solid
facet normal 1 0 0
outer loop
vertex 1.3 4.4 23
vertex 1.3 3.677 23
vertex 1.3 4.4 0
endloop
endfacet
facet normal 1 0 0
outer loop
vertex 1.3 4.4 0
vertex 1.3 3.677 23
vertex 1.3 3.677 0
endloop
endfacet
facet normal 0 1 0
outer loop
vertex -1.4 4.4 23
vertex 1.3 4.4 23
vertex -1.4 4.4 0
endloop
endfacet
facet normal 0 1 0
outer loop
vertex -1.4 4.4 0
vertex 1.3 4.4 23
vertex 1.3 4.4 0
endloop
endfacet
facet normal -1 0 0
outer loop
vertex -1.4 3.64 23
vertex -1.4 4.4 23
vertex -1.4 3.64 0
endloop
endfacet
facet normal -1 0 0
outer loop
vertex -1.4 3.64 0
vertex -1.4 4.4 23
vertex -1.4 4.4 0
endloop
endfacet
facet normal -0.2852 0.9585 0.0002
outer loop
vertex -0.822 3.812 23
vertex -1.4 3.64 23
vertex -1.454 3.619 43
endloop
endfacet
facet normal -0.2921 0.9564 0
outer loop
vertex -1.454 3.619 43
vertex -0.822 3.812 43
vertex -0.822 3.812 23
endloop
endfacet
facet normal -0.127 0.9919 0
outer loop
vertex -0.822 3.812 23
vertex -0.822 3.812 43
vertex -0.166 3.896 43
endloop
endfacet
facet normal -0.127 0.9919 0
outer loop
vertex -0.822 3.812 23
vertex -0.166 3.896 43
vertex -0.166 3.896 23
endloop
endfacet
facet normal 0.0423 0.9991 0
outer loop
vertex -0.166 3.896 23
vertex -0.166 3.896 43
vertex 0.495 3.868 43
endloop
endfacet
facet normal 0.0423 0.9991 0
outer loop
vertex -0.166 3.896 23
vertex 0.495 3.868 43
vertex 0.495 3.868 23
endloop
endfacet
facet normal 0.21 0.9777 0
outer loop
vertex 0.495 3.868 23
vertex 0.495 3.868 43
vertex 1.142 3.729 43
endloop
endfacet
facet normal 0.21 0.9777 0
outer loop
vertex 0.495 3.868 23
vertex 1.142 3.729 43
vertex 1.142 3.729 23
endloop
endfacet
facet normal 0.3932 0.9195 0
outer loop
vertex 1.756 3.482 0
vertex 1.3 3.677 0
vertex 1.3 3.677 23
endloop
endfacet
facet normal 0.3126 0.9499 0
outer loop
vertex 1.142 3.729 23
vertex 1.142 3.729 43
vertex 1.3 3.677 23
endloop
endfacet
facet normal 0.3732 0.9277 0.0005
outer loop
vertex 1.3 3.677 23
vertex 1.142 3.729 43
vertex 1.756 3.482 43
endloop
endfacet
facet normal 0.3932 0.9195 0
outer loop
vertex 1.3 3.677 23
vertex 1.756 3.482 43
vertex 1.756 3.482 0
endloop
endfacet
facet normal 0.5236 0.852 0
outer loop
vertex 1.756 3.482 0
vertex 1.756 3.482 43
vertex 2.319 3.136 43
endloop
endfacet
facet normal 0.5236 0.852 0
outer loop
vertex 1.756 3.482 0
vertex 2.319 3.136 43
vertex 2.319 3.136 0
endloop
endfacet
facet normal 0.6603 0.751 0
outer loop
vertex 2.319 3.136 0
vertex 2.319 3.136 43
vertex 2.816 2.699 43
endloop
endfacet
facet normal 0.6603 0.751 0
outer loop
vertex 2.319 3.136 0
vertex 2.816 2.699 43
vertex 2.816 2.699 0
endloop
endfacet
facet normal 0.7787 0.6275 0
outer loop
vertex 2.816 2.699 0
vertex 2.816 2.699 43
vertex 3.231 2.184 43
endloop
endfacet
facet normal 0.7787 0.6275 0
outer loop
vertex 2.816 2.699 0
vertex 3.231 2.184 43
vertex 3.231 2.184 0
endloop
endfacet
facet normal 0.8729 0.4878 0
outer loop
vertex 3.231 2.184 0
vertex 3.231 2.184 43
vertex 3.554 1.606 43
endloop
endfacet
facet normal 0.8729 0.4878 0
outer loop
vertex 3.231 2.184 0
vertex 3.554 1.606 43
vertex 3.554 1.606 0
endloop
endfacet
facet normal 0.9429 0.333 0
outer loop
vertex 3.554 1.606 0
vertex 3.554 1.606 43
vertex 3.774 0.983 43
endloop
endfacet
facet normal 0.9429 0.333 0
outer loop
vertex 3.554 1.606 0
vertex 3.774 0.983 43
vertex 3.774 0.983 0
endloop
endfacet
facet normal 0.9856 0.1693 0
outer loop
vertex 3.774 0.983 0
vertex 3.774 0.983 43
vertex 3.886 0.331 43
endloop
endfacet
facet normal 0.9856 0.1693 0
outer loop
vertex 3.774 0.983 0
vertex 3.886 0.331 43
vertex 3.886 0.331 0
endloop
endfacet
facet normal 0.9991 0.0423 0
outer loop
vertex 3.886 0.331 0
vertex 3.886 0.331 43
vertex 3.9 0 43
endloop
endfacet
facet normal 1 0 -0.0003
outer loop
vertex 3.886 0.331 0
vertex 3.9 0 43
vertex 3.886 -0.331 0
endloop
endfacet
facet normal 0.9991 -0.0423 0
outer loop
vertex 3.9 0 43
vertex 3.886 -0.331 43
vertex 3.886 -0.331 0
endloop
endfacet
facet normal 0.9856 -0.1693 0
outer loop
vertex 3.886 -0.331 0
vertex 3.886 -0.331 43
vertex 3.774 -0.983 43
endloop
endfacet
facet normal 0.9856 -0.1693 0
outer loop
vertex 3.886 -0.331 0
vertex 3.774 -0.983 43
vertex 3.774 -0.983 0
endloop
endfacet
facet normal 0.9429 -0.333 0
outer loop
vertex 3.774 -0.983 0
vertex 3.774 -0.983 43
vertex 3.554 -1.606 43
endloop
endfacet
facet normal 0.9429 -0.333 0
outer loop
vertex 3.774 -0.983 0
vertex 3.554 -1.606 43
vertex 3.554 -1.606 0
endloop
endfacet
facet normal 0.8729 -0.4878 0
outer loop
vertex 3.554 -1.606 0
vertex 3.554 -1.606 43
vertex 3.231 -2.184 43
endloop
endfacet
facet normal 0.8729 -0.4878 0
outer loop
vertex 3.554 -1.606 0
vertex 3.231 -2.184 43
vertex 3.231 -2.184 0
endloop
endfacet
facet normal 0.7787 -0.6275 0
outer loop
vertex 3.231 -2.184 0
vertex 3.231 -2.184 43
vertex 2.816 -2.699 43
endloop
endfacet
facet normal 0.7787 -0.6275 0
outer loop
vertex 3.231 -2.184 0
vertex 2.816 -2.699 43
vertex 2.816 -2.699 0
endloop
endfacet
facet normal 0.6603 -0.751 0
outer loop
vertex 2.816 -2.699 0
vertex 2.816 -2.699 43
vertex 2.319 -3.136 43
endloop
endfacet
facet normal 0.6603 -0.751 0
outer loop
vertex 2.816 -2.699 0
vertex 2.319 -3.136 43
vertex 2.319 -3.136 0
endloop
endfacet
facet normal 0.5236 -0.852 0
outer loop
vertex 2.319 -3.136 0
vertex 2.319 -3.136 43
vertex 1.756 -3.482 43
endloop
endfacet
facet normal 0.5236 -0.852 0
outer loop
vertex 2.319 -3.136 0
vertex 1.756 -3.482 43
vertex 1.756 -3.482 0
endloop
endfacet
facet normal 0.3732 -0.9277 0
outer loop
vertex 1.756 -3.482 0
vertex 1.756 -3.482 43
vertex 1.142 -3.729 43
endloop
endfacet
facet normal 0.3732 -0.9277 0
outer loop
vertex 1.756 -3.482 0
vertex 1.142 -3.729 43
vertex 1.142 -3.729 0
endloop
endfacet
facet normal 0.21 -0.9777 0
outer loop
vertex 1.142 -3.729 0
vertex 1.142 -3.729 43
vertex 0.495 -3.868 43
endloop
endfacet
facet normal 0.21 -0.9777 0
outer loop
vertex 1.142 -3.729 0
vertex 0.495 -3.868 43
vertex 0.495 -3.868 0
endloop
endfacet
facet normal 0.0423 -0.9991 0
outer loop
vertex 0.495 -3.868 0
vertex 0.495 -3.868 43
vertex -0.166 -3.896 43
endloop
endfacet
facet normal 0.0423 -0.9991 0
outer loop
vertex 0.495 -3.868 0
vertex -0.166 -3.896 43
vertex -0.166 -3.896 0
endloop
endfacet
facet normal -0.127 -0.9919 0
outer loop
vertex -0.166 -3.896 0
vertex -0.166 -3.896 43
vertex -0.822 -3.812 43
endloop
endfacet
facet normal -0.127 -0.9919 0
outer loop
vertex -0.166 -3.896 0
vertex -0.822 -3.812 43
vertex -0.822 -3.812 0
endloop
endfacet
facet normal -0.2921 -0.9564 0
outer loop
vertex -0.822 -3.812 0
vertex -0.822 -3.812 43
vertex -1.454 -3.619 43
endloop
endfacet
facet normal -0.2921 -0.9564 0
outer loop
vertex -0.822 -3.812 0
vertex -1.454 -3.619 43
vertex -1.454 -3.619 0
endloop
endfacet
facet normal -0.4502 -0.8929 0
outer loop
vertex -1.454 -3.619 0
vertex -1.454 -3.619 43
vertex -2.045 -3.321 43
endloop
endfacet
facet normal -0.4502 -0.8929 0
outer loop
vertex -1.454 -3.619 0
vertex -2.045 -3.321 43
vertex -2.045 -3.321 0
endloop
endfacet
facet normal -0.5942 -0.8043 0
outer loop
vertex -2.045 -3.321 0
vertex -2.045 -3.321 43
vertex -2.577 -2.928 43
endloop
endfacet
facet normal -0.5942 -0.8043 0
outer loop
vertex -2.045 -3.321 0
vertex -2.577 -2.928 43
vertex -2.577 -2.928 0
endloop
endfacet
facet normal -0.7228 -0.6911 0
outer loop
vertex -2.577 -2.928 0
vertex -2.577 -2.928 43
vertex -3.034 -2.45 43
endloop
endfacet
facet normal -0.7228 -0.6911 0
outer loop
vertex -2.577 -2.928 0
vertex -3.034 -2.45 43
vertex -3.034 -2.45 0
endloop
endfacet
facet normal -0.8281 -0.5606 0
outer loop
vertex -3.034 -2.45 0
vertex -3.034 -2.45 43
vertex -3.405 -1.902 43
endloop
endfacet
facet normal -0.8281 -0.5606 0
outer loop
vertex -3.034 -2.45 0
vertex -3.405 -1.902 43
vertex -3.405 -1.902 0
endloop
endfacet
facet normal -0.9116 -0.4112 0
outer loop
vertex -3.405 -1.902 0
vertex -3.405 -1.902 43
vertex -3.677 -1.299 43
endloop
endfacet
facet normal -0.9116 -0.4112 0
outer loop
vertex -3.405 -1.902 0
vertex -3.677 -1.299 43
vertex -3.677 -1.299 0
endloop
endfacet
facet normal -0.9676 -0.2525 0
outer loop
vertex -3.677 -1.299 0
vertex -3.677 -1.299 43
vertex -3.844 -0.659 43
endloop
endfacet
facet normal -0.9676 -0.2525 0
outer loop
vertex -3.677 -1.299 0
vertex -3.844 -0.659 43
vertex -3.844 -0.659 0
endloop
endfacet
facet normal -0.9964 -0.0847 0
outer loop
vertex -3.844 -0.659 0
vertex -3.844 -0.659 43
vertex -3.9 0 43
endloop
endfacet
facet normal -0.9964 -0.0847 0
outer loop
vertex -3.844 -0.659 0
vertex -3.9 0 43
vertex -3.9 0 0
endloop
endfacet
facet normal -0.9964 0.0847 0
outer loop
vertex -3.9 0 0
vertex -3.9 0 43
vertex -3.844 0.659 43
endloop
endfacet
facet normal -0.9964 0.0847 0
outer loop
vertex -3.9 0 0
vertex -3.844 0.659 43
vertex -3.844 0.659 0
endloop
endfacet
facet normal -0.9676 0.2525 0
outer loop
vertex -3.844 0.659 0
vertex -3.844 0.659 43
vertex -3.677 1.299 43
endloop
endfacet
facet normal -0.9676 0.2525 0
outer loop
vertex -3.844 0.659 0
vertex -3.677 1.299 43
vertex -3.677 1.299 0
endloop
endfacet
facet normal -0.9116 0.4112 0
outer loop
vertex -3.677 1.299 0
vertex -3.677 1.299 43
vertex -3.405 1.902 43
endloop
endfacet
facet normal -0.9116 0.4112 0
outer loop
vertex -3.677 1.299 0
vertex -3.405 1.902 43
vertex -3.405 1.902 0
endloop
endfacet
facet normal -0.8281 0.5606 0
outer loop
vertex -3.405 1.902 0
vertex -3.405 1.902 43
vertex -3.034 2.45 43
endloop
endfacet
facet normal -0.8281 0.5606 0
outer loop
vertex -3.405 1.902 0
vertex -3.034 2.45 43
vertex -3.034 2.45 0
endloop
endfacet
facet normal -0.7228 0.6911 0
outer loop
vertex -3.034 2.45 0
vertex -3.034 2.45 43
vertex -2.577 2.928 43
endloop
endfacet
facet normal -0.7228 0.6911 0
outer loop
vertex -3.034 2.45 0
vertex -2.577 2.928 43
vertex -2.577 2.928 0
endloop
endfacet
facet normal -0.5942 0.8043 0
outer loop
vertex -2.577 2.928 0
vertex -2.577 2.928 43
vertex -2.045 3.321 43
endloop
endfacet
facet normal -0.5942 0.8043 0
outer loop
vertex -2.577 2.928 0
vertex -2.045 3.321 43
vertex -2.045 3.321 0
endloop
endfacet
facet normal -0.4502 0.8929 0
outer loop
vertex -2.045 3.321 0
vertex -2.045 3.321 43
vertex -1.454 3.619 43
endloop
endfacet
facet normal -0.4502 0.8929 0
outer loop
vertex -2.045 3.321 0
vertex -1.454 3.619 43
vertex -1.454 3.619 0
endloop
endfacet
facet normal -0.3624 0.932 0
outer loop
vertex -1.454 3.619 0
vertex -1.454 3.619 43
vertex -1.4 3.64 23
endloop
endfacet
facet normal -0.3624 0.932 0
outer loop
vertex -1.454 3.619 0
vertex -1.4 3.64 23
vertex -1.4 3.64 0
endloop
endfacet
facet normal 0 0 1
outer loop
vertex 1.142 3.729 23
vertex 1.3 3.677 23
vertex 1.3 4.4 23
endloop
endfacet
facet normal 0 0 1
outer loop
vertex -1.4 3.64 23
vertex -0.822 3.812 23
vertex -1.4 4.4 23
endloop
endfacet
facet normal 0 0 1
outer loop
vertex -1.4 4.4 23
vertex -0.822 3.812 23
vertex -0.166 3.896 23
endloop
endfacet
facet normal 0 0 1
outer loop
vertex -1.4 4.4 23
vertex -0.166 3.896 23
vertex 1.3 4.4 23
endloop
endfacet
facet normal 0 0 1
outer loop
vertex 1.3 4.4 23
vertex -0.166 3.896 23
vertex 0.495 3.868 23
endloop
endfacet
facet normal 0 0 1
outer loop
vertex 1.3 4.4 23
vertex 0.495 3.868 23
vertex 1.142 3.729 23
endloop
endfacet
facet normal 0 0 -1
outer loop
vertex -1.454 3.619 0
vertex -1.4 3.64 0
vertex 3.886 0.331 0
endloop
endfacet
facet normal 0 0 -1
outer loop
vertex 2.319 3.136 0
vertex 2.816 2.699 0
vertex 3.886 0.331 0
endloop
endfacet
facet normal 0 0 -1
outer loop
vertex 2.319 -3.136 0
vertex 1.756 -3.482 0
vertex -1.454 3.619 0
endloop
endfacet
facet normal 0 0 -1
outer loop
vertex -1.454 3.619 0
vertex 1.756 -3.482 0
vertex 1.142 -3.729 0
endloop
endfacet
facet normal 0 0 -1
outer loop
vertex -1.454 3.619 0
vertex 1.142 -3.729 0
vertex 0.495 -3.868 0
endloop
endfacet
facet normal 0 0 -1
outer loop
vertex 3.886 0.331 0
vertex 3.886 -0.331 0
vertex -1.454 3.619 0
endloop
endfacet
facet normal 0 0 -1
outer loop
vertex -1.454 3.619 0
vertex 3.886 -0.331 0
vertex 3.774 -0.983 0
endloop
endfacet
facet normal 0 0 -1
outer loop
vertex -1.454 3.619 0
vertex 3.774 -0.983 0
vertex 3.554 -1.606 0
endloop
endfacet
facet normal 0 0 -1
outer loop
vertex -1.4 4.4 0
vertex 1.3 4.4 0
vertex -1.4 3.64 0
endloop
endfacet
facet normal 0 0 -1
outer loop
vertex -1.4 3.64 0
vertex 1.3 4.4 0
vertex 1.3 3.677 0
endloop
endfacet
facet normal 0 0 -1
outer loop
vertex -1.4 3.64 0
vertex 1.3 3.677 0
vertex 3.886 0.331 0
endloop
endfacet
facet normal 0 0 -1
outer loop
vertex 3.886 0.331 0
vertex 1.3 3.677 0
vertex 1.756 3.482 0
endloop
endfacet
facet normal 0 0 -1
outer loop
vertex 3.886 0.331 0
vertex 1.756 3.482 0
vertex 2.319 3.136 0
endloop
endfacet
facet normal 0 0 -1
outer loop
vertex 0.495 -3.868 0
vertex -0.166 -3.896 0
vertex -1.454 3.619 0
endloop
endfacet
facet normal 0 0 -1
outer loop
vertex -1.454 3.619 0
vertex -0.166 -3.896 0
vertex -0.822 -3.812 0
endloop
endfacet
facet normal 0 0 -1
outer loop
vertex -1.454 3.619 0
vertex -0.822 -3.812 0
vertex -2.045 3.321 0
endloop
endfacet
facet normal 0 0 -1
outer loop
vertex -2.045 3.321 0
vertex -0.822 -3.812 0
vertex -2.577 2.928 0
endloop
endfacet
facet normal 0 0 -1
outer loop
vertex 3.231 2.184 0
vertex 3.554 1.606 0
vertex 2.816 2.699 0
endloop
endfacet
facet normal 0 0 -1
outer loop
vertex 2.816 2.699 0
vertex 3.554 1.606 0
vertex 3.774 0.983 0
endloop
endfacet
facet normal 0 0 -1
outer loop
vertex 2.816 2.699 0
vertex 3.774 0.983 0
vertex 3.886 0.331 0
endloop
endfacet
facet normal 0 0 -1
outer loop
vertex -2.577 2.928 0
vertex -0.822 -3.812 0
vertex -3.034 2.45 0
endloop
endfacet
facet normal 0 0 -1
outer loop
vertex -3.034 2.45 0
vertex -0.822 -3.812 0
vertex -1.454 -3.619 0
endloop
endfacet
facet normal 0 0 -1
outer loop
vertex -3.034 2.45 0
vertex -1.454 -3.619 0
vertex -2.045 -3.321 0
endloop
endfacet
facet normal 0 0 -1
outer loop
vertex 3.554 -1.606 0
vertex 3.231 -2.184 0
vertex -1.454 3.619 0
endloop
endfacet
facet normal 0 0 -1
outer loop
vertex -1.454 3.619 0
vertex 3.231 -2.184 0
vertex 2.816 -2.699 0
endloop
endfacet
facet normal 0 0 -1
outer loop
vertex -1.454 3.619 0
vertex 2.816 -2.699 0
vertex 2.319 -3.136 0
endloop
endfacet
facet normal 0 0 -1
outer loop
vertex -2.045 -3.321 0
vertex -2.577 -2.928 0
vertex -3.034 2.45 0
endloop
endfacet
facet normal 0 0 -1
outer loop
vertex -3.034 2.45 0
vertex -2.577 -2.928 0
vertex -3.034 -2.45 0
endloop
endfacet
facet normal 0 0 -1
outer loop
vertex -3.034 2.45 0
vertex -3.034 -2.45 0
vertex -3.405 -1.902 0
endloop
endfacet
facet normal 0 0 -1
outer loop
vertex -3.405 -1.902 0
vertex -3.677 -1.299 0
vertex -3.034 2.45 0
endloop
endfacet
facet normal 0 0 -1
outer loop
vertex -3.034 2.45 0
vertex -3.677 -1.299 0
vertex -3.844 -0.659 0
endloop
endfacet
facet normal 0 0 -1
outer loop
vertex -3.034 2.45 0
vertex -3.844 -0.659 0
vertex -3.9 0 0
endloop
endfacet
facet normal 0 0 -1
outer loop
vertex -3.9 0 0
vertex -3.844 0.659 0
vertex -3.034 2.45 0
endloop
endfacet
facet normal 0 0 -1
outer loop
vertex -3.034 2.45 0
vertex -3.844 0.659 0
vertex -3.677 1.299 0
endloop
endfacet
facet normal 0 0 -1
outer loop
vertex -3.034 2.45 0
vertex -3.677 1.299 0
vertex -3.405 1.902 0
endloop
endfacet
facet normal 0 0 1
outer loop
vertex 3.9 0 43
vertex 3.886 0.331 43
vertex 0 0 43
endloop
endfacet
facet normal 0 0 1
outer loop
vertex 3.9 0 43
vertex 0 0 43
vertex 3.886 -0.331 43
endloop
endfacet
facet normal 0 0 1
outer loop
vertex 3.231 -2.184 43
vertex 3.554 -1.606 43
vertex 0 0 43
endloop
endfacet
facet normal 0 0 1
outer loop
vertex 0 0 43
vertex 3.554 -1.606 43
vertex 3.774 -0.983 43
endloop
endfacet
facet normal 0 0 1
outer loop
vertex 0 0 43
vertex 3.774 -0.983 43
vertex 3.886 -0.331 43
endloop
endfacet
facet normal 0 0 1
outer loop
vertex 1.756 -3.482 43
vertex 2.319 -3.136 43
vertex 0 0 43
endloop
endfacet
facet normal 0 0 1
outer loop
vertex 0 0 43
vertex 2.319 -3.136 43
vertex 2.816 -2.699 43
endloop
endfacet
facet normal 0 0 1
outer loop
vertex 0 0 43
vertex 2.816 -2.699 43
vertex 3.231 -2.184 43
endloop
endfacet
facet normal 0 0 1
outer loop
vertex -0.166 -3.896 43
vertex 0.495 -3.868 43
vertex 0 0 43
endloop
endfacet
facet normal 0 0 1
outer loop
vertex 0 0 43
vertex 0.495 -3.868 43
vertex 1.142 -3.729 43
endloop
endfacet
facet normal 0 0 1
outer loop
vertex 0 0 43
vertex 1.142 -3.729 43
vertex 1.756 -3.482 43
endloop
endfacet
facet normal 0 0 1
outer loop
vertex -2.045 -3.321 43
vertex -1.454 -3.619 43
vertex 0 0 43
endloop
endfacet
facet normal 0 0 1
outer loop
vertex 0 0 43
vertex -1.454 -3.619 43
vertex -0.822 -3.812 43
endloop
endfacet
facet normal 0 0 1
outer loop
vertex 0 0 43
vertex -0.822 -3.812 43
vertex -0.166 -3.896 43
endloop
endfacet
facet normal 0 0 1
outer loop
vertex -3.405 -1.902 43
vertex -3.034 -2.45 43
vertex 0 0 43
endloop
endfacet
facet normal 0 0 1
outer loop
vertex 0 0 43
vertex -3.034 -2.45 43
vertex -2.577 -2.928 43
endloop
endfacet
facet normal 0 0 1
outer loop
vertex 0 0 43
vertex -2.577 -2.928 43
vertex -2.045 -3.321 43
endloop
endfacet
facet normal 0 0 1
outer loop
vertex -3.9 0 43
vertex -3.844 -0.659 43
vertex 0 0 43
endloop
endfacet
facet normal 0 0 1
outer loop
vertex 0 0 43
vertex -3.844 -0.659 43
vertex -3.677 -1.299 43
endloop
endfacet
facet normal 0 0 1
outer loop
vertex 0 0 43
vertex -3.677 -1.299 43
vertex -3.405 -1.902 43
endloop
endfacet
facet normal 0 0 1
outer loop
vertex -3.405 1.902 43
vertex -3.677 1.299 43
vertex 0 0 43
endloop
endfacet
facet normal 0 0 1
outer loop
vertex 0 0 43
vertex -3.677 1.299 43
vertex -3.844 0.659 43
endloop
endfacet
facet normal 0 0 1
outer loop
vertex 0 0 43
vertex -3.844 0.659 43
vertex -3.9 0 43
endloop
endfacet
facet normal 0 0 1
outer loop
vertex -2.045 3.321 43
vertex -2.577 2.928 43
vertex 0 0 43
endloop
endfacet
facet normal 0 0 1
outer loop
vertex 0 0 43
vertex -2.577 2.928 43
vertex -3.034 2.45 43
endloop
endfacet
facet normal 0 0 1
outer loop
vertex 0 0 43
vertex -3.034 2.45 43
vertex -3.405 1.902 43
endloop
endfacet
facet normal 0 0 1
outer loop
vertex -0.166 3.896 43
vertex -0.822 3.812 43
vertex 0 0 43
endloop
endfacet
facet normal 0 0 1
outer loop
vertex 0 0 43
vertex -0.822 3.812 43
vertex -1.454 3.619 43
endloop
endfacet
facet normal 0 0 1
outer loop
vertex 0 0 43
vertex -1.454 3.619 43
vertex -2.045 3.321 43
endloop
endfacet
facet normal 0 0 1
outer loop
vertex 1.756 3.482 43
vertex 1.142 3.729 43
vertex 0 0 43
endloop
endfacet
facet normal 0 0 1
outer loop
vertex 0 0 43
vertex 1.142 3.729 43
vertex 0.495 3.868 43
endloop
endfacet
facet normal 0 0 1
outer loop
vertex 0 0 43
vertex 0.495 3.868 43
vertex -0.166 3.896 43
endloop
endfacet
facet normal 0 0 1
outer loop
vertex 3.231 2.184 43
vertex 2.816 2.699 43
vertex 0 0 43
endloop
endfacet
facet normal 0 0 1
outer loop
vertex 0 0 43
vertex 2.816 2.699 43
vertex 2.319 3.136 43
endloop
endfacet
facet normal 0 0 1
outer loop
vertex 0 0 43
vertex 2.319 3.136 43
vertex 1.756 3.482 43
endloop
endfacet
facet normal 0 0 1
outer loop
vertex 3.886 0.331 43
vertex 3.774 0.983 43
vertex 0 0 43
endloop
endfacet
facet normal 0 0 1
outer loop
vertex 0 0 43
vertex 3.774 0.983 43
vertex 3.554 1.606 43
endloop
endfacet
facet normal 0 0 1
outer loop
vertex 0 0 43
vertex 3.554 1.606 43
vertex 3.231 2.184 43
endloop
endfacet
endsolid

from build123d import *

# Parameters (mm, degrees)
EXTRUDE_1_DEPTH = 23
SKETCH_2_R      = 3.9
EXTRUDE_2_DEPTH = 20


with BuildPart() as part:
    # 草图1 → 凸台-拉伸1 (new body)
    with BuildSketch(Plane.XY):
        with BuildLine():
            Line((-1.4, 3.640054945), (-1.4, 4.4))
            Line((-1.4, 4.4), (1.3, 4.4))
            Line((1.3, 4.4), (1.3, 3.676955262))
            ThreePointArc((1.3, 3.676955262), (0.053295482, -3.899635828), (-1.4, 3.640054945))
        make_face()
    extrude(amount=EXTRUDE_1_DEPTH)

    # 草图2 → 凸台-拉伸2 (add)
    with BuildSketch(Plane.XY.offset(23)):
        with Locations(Location((0, 0, 0), (0, 0, 111.037221256))):
            Circle(SKETCH_2_R)
    extrude(amount=EXTRUDE_2_DEPTH)


solid = part.part
